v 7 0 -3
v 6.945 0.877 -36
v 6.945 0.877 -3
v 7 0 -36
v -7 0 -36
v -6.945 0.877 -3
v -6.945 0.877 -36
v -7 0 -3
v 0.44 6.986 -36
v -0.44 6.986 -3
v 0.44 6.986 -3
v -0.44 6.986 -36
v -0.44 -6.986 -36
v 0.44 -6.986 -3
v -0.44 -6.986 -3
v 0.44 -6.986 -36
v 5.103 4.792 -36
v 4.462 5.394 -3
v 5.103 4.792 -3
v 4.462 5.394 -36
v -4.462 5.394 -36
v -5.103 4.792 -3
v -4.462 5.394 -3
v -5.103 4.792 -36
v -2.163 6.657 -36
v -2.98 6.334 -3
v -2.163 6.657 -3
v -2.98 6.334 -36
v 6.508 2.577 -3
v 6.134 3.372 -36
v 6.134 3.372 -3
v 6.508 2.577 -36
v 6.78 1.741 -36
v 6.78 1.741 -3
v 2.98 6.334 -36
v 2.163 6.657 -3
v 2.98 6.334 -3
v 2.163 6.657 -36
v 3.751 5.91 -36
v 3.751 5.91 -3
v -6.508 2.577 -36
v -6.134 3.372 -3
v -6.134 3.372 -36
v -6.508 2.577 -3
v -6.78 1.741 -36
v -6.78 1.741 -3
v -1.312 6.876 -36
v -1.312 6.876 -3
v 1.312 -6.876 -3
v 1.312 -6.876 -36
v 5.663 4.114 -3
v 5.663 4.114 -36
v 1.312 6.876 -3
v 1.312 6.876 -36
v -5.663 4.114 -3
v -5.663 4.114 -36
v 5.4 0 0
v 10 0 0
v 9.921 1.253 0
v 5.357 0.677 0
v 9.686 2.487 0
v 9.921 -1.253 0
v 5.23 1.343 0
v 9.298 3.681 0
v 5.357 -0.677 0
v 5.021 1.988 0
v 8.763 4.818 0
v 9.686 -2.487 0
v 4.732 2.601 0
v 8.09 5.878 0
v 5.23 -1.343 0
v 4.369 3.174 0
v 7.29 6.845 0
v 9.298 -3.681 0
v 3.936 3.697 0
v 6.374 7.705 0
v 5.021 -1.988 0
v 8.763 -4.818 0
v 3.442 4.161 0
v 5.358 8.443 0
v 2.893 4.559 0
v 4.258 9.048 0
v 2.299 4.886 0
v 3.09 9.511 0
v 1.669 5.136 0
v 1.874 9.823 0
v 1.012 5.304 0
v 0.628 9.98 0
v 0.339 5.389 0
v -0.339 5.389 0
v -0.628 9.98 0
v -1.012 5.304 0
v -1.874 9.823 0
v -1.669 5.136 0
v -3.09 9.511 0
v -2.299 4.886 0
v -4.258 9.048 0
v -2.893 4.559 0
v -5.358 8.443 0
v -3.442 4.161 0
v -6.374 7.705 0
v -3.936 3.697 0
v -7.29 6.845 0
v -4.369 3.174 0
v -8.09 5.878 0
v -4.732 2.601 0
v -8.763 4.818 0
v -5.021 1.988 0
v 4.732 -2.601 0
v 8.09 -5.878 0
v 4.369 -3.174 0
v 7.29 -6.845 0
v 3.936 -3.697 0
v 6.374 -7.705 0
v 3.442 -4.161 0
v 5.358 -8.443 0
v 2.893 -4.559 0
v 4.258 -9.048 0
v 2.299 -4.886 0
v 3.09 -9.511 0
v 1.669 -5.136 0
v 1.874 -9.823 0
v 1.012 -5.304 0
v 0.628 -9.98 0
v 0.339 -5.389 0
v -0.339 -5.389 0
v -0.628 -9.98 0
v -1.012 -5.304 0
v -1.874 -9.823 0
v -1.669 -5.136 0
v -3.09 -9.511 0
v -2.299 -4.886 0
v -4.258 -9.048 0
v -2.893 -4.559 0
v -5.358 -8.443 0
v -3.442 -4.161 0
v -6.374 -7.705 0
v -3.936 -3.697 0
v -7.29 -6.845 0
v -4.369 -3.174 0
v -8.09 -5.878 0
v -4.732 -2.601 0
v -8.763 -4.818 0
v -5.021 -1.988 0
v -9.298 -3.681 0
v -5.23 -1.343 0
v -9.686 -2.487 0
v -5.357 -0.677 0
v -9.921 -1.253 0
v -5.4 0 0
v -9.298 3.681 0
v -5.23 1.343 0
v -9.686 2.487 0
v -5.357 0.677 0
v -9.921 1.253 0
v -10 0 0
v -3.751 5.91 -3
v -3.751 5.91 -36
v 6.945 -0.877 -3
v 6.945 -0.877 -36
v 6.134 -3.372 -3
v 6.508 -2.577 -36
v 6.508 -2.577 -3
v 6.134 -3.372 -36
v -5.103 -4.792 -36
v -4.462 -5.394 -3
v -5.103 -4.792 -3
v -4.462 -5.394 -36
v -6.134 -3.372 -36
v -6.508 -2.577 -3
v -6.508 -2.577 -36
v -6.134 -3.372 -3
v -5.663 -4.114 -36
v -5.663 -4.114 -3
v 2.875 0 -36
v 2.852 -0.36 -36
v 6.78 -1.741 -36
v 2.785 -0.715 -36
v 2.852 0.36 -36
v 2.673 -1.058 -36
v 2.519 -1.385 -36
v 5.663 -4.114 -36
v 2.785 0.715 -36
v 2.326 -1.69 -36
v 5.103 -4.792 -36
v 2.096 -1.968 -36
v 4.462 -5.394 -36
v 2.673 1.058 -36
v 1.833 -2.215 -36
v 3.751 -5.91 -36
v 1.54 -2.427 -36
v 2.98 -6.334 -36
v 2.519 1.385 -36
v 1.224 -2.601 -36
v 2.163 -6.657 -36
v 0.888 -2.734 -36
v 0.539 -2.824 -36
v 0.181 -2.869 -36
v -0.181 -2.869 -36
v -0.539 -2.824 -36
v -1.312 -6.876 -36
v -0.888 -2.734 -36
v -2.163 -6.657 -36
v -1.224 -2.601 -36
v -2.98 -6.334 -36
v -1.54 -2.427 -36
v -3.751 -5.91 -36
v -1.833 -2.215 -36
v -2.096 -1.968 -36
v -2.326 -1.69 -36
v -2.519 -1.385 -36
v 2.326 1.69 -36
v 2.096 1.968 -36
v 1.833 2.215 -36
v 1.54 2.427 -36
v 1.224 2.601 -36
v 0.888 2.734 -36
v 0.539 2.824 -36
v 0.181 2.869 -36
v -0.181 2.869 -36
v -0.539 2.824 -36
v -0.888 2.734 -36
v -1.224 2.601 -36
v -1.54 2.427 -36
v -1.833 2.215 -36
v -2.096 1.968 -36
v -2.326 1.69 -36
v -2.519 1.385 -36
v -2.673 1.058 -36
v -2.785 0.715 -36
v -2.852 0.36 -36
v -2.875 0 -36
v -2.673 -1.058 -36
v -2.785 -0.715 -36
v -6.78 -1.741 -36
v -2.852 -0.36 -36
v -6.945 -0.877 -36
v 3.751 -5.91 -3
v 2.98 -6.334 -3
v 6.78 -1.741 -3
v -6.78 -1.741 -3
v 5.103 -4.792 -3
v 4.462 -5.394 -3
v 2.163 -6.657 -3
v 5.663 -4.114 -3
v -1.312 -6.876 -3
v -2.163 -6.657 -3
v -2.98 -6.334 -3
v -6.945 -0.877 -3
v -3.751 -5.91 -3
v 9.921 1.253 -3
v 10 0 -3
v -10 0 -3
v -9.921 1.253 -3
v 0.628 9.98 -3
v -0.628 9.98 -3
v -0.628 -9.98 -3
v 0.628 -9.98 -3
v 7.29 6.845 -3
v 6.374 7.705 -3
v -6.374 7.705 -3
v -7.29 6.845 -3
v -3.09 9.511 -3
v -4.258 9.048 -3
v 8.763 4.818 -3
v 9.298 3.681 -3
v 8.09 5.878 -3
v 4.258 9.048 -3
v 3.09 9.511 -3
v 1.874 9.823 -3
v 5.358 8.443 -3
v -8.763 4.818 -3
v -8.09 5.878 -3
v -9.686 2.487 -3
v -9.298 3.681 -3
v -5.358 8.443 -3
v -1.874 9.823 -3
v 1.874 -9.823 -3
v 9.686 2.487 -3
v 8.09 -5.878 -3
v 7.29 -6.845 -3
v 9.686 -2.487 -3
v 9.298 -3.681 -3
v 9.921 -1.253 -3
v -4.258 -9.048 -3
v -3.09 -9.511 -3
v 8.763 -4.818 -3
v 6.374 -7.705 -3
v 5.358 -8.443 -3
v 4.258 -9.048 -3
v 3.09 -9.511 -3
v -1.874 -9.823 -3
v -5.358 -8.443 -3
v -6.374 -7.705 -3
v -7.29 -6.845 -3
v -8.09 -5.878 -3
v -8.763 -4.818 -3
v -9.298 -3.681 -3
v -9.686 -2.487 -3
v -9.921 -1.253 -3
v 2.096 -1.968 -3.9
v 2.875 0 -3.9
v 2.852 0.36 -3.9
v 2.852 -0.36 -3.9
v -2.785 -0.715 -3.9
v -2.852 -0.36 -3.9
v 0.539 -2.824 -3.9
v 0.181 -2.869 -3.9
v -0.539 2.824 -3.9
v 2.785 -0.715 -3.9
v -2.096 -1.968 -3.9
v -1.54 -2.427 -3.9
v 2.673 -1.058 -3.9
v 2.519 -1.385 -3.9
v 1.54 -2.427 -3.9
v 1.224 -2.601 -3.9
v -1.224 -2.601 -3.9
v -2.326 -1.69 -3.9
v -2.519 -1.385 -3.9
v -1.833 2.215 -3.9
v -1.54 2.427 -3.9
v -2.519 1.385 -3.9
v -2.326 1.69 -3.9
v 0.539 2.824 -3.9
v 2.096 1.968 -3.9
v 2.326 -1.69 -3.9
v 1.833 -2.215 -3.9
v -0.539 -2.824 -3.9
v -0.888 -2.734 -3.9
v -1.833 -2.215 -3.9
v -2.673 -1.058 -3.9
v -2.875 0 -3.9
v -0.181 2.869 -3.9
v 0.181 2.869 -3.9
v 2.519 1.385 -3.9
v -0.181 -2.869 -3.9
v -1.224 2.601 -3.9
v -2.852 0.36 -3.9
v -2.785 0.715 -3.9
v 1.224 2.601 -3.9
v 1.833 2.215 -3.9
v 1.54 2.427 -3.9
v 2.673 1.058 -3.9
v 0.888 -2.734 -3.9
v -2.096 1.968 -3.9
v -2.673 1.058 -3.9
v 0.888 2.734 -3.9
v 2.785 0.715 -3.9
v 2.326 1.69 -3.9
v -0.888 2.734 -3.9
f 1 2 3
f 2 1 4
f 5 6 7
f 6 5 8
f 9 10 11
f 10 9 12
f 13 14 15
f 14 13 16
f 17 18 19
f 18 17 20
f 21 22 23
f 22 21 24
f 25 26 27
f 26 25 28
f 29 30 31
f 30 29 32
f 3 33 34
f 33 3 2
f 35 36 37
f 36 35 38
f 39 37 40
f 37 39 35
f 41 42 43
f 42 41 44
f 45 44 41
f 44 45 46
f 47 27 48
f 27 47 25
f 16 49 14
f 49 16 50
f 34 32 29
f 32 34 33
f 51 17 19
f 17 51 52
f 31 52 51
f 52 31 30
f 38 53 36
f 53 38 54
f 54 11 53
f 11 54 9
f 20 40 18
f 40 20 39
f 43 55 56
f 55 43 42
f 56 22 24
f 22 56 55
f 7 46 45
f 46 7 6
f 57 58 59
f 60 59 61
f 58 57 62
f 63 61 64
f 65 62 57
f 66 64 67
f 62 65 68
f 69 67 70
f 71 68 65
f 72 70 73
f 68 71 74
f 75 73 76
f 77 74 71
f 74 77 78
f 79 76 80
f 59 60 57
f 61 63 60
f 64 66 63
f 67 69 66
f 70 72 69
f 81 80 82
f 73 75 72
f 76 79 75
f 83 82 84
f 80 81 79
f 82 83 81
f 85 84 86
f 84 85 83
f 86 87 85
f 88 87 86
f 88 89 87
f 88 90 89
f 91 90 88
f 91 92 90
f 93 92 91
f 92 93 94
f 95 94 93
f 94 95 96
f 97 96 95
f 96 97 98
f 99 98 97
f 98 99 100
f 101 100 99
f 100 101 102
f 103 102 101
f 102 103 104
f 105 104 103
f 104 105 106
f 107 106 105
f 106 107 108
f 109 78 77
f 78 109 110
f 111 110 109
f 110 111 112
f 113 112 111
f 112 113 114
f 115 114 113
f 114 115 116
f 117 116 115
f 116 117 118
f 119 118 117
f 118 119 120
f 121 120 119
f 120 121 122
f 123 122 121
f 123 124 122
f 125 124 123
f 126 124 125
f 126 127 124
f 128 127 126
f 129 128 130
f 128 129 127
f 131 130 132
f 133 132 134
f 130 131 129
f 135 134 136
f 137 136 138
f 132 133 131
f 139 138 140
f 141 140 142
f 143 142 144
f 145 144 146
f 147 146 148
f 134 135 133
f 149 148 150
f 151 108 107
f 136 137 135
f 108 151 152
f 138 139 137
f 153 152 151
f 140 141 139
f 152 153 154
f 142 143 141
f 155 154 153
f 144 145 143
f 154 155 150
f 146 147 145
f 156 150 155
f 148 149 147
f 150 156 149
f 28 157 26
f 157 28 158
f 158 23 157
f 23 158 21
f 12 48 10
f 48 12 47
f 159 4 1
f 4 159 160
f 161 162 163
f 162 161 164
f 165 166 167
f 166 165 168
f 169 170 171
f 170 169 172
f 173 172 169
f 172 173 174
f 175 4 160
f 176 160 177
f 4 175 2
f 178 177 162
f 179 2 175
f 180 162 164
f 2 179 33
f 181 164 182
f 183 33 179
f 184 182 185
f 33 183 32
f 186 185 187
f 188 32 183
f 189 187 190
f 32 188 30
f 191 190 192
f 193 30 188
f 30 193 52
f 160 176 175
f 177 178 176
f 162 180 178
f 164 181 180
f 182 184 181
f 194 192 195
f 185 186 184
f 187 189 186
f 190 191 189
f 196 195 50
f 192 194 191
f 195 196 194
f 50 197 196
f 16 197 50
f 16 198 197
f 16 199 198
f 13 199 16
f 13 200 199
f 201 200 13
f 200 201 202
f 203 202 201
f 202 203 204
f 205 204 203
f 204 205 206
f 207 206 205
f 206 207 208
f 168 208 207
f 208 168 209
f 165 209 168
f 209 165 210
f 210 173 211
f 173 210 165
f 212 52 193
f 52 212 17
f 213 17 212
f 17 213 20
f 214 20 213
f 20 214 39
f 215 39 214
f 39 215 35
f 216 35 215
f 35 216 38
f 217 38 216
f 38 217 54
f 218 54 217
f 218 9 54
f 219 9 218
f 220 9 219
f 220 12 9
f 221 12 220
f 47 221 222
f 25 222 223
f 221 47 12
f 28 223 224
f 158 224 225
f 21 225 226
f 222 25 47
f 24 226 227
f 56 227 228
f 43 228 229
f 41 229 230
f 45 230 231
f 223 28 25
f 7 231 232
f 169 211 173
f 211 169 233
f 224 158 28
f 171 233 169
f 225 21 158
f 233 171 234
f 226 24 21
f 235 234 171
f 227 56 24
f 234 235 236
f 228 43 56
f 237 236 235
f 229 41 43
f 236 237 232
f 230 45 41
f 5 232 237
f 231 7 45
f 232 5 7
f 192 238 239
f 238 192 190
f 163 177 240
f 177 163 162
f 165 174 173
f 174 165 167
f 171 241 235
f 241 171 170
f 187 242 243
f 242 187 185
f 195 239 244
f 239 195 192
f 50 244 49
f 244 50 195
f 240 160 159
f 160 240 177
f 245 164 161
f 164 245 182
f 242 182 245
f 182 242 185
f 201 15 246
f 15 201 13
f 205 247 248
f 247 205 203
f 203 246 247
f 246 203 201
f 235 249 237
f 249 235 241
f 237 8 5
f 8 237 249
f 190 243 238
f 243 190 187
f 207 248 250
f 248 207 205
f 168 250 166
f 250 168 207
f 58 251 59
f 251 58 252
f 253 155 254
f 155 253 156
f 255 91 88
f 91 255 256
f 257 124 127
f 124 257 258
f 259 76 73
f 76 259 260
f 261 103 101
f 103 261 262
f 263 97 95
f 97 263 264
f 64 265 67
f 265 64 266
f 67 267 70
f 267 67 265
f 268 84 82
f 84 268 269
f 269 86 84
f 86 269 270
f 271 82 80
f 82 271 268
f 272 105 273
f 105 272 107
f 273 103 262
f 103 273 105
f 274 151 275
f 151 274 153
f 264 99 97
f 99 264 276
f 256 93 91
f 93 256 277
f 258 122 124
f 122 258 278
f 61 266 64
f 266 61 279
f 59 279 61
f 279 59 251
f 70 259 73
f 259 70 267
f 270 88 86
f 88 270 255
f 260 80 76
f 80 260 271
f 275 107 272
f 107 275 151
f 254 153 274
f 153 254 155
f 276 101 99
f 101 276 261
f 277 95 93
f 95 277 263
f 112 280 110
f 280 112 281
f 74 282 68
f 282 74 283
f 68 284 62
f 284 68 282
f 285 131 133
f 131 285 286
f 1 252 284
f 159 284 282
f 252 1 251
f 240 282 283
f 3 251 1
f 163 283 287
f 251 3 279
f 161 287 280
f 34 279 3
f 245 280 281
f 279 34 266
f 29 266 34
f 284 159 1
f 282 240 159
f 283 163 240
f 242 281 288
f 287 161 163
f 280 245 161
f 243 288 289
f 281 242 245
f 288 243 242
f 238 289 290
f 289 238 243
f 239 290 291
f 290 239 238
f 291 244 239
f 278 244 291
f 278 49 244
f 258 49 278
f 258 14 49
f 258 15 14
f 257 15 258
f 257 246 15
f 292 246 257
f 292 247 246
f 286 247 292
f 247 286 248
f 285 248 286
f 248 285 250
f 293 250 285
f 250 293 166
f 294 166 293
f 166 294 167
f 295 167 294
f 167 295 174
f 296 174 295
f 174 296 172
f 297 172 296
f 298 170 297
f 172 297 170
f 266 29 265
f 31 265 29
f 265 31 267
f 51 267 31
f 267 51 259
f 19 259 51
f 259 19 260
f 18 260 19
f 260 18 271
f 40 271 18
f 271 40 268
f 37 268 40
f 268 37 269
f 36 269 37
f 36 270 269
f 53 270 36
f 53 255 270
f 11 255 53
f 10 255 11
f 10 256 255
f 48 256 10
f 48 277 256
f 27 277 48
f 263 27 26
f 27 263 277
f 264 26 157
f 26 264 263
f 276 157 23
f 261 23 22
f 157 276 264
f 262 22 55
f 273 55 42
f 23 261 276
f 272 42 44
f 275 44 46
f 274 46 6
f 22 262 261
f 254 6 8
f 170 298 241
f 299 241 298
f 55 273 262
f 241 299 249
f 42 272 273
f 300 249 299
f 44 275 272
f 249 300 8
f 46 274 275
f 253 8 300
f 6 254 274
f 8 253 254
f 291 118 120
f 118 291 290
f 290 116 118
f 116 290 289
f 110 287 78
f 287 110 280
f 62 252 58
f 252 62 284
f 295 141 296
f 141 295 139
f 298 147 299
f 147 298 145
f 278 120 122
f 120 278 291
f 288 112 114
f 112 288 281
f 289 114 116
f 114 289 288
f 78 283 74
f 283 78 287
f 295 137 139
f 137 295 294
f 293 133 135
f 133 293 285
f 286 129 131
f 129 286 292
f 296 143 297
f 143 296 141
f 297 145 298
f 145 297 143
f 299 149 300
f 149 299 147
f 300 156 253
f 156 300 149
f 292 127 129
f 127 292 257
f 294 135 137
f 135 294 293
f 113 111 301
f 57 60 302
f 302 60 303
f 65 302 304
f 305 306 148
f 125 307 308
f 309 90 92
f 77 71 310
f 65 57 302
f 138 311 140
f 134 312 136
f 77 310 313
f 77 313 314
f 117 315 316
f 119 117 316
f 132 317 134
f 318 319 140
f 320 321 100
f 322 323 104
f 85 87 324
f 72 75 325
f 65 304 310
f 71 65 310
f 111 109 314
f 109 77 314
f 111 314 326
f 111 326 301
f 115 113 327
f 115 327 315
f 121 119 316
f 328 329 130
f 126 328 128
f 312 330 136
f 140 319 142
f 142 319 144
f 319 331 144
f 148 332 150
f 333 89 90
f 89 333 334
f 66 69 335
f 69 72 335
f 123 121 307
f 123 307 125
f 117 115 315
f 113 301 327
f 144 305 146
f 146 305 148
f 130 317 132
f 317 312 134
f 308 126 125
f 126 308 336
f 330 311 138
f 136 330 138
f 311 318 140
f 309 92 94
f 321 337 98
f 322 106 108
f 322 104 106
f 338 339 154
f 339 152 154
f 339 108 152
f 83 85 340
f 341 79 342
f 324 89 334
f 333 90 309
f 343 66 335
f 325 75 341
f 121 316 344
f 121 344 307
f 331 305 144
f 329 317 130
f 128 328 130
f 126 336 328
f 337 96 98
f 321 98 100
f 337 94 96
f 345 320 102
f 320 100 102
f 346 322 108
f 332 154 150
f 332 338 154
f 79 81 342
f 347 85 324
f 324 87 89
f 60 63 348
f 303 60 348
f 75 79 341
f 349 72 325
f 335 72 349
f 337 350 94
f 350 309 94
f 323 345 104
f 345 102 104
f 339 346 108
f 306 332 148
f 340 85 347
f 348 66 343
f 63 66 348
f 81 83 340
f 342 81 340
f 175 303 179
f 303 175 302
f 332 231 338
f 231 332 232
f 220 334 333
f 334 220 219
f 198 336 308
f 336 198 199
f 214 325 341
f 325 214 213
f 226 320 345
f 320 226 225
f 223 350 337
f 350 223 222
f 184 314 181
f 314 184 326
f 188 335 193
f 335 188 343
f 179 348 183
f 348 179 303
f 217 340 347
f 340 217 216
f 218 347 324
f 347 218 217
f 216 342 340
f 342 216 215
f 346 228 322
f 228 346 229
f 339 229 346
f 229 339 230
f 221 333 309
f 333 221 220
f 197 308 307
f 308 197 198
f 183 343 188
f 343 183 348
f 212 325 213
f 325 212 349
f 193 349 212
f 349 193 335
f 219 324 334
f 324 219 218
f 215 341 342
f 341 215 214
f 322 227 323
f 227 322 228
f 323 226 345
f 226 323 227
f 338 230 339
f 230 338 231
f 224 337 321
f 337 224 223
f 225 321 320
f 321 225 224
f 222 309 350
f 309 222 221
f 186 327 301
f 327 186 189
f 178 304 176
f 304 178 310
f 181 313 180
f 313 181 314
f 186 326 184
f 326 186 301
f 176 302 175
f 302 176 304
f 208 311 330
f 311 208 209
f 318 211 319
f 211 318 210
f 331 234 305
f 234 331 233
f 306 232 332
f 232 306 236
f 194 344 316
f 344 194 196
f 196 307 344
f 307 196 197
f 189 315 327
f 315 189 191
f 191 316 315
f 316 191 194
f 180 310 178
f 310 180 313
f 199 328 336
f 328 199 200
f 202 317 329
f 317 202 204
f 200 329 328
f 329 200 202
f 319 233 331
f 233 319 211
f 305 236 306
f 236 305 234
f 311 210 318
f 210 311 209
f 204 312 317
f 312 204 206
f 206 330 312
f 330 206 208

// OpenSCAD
$fn = 50;


difference() {
	union() {
		translate(v = [0, 0, -36.0000000000]) {
			cylinder(h = 36, r = 7.0000000000);
		}
		translate(v = [0, 0, -3.0000000000]) {
			cylinder(h = 3, r = 10.0000000000);
		}
	}
	union() {
		translate(v = [0, 0, 0]) {
			rotate(a = [0, 0, 0]) {
				difference() {
					union() {
						#translate(v = [0, 0, -36.0000000000]) {
							cylinder(h = 36, r = 2.6000000000);
						}
						#translate(v = [0, 0, -3.9000000000]) {
							cylinder(h = 3.9000000000, r1 = 2.8750000000, r2 = 5.4000000000);
						}
						#translate(v = [0, 0, -36.0000000000]) {
							cylinder(h = 36, r = 2.8750000000);
						}
						#translate(v = [0, 0, -36.0000000000]) {
							cylinder(h = 36, r = 2.6000000000);
						}
					}
					union();
				}
			}
		}
	}
}
